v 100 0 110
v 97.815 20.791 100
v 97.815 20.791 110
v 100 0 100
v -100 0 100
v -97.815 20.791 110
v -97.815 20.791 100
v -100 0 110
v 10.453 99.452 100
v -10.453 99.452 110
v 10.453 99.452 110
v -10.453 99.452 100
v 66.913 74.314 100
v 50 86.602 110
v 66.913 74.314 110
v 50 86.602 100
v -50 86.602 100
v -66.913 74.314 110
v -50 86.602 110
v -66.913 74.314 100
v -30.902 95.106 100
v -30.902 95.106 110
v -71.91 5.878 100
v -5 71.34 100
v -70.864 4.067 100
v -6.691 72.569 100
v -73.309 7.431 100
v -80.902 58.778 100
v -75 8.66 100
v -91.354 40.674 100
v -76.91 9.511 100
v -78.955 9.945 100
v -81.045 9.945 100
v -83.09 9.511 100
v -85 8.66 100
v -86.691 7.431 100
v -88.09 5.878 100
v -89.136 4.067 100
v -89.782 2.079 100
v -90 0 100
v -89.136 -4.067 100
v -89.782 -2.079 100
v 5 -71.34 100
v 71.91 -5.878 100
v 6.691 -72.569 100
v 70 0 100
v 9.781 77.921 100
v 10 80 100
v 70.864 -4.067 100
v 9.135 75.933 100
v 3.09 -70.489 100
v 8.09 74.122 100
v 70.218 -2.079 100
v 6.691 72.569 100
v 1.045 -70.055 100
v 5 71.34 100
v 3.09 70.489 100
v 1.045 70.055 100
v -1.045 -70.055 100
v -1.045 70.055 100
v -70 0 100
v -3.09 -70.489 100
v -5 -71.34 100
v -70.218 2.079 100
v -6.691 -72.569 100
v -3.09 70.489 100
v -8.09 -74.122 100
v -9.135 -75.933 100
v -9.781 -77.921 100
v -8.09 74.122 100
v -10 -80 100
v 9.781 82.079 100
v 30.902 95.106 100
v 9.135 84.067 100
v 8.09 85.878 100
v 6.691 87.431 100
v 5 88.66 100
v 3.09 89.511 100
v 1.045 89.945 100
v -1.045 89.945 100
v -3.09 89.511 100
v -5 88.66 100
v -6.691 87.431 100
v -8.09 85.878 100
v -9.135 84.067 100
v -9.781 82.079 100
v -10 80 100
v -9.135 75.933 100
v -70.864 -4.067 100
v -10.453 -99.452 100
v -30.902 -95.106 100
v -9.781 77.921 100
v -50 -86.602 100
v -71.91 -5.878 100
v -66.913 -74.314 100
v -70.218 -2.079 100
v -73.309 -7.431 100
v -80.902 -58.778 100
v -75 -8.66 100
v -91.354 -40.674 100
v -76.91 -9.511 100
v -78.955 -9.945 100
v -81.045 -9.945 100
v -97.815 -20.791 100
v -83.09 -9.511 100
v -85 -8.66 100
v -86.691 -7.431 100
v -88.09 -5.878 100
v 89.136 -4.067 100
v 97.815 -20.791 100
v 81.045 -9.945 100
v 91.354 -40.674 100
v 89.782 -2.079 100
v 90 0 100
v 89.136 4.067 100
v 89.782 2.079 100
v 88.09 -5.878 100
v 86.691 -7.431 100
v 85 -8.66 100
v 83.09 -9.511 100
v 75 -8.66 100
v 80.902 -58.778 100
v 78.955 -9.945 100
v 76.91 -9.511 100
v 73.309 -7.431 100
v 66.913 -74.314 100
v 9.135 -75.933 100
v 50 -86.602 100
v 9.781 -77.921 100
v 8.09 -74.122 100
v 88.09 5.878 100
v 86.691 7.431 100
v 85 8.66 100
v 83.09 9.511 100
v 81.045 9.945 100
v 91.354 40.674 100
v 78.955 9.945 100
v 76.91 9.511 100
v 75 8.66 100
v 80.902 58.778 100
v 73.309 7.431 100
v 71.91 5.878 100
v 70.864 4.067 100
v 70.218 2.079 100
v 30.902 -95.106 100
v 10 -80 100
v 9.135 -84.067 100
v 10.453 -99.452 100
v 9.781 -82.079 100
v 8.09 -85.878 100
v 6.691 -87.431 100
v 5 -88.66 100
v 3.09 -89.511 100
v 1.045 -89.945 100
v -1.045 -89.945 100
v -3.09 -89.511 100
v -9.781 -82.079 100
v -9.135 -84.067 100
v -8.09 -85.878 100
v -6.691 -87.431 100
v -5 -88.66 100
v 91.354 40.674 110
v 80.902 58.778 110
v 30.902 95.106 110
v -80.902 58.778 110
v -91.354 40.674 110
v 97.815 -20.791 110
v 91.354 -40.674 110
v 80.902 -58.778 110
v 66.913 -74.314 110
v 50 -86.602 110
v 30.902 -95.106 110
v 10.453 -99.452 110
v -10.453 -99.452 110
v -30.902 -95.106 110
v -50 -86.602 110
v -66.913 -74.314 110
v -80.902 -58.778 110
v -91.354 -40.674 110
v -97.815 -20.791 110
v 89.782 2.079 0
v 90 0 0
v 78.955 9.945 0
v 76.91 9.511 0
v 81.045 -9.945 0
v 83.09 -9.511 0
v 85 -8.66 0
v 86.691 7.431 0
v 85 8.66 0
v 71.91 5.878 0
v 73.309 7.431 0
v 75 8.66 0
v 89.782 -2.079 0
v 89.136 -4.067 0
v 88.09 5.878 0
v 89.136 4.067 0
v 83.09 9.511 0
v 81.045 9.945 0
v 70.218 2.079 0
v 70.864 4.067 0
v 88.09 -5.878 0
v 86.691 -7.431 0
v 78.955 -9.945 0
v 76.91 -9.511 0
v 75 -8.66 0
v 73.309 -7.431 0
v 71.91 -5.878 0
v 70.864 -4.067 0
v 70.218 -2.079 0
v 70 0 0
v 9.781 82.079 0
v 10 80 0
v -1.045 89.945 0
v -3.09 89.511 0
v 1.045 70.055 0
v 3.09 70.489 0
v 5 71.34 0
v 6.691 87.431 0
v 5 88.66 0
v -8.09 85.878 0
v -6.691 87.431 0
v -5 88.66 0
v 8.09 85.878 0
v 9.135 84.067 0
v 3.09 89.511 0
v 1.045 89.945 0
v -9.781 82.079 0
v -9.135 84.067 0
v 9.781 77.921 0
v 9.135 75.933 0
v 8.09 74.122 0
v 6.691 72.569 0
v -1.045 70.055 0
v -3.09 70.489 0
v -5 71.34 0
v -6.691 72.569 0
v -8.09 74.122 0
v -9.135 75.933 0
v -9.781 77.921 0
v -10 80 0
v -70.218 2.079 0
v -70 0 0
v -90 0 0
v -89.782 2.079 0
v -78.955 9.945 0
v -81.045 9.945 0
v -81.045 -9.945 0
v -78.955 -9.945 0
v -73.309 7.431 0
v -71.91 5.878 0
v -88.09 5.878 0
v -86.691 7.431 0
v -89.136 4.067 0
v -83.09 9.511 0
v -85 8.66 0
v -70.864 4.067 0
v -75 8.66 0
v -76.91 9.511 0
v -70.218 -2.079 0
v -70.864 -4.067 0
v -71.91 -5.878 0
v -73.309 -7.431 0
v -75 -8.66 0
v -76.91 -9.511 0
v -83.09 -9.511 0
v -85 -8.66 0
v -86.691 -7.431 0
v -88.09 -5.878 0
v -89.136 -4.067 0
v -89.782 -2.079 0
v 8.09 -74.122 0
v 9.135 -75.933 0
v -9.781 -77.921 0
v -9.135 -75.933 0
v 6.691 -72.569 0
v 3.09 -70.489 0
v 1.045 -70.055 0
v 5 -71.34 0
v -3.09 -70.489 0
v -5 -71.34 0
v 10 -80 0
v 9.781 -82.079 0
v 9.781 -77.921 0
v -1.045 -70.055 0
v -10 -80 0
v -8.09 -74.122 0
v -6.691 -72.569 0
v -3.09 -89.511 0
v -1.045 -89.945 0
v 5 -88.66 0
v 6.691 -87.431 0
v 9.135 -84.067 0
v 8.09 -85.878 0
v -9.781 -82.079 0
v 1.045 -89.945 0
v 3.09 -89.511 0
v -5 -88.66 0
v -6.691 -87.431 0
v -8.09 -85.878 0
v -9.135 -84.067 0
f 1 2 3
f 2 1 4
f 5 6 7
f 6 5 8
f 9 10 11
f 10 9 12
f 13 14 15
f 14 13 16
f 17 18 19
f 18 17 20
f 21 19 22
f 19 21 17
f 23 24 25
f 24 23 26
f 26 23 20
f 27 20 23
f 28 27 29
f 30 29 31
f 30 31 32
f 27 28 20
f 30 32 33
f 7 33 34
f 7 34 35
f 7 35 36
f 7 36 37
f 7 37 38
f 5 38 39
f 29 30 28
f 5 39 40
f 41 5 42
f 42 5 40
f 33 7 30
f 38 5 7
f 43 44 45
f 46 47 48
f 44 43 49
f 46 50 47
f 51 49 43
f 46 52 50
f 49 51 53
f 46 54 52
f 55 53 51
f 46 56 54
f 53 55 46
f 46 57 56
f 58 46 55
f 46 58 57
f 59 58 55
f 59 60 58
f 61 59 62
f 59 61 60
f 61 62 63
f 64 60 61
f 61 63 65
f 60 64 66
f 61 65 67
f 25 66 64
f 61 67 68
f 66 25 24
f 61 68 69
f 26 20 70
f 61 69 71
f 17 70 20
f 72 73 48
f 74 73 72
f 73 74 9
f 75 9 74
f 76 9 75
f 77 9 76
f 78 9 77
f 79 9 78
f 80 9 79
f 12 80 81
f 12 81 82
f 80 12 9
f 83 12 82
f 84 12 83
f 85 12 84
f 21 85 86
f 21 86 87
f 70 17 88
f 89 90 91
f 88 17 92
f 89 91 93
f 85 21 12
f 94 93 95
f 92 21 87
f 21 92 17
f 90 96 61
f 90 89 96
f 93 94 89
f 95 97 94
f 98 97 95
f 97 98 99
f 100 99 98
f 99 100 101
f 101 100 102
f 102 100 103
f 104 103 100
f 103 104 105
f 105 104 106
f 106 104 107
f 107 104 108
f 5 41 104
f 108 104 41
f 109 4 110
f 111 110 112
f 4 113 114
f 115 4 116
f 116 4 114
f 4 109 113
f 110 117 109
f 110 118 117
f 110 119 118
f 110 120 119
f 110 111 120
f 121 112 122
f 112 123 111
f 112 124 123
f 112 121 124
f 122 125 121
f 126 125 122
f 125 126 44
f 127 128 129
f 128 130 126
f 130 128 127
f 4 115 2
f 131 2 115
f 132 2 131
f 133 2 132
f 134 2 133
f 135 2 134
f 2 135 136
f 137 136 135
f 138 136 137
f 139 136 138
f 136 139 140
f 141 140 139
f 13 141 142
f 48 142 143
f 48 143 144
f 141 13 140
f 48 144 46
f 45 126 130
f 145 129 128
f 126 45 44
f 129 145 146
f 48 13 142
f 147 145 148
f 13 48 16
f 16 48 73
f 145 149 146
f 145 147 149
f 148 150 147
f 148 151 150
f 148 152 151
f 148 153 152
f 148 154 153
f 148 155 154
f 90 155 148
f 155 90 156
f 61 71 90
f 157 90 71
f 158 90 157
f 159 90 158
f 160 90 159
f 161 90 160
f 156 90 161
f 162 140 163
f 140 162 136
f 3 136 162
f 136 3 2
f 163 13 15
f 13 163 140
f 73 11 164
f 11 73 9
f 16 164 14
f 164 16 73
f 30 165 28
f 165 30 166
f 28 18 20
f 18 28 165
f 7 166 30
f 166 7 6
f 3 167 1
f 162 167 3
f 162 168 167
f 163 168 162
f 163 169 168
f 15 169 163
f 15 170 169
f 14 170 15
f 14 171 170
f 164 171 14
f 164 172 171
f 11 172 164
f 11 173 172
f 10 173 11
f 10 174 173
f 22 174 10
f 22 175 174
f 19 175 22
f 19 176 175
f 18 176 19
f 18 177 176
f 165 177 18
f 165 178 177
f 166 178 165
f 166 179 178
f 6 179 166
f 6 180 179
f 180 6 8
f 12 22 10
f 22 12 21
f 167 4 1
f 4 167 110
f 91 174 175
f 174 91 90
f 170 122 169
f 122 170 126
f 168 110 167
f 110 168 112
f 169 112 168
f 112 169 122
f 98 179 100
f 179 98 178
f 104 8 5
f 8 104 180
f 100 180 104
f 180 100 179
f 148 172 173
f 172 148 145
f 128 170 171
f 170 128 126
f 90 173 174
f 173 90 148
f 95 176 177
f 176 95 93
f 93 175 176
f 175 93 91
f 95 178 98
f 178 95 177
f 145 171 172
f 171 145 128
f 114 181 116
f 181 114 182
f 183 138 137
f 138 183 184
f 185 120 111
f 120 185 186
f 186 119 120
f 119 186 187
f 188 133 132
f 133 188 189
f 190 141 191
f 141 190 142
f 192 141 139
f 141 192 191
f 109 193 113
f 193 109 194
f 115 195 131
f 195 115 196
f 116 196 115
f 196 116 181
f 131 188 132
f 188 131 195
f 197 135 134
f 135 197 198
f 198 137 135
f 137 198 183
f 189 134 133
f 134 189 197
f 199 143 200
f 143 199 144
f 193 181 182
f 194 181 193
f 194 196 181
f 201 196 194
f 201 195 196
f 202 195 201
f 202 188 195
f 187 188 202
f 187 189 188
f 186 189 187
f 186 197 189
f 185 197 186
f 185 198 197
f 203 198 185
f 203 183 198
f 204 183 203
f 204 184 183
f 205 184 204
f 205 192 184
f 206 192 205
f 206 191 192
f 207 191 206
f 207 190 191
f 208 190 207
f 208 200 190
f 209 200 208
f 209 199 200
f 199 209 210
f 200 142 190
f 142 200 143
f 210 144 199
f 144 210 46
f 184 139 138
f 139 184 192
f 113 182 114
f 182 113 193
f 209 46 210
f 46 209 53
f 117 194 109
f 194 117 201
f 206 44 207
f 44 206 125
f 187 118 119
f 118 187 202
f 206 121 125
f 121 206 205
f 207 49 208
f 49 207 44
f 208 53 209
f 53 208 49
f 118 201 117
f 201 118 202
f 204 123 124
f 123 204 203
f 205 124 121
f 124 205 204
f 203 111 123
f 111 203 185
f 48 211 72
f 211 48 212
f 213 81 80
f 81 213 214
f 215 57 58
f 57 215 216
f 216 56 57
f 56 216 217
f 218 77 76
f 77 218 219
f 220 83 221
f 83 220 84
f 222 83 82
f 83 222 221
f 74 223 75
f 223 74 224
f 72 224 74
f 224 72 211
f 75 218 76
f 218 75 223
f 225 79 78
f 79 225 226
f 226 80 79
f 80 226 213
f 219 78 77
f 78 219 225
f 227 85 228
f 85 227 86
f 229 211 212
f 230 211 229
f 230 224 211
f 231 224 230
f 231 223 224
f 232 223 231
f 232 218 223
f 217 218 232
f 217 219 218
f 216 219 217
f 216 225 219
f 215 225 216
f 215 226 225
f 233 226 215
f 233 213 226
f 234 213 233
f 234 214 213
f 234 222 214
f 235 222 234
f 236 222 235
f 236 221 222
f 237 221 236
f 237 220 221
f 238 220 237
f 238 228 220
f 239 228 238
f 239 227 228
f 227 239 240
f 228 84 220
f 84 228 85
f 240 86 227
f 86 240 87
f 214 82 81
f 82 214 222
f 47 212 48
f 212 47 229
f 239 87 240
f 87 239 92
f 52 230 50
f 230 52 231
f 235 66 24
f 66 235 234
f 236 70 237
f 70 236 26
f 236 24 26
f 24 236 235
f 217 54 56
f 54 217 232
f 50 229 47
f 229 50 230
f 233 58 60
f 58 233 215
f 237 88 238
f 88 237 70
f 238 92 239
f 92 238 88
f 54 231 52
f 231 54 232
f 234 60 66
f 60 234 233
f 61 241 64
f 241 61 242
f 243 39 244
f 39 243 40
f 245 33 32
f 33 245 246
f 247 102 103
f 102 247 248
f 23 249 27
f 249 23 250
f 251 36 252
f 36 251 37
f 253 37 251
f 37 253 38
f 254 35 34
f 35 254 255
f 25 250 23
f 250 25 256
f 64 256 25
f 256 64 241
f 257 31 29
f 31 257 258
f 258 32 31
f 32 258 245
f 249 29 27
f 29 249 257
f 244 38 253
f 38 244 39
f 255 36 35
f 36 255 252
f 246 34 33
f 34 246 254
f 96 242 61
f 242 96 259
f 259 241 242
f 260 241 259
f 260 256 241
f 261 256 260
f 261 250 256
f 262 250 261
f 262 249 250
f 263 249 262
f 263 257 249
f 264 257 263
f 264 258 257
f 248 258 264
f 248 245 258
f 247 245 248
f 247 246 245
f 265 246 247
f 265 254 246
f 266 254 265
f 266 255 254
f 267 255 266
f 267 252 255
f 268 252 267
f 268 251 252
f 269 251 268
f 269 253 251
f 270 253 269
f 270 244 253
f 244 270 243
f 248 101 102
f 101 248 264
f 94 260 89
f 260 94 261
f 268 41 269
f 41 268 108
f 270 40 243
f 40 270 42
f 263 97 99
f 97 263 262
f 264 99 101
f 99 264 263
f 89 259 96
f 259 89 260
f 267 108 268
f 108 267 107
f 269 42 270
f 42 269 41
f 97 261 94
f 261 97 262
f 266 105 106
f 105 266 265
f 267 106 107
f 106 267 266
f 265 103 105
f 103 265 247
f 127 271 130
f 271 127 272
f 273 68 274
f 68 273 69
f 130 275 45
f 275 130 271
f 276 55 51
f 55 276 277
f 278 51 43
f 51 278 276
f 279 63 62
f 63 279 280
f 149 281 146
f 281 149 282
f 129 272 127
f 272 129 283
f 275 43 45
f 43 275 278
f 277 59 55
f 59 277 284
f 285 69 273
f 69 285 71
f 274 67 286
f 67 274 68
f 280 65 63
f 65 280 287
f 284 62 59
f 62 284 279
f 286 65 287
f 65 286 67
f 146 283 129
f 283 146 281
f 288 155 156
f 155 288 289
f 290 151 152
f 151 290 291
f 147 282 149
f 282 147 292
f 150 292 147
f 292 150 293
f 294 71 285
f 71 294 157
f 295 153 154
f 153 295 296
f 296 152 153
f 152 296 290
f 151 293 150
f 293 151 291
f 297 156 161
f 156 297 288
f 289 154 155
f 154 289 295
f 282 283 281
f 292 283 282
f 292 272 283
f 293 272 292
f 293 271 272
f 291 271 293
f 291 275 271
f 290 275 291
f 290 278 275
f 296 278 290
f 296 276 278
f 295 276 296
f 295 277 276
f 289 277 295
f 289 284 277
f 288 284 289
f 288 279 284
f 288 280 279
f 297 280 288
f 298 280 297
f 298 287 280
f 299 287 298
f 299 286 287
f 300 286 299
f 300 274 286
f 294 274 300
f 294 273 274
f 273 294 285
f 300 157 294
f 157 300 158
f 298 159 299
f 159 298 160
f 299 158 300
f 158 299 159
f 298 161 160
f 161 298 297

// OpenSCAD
union(){
    cube(size=[0, 0, 0]);
    translate(v=[0, 0, 100]){
        color(""){
            cylinder(h=10, r=100);
        };
    };
    translate(v=[80, 0, 0]){
        color(""){
            cylinder(h=100, r=10);
        };
    };
    translate(v=[0, 80, 0]){
        color(""){
            cylinder(h=100, r=10);
        };
    };
    translate(v=[-80, 0, 0]){
        color(""){
            cylinder(h=100, r=10);
        };
    };
    translate(v=[0, -80, 0]){
        color(""){
            cylinder(h=100, r=10);
        };
    };
};
